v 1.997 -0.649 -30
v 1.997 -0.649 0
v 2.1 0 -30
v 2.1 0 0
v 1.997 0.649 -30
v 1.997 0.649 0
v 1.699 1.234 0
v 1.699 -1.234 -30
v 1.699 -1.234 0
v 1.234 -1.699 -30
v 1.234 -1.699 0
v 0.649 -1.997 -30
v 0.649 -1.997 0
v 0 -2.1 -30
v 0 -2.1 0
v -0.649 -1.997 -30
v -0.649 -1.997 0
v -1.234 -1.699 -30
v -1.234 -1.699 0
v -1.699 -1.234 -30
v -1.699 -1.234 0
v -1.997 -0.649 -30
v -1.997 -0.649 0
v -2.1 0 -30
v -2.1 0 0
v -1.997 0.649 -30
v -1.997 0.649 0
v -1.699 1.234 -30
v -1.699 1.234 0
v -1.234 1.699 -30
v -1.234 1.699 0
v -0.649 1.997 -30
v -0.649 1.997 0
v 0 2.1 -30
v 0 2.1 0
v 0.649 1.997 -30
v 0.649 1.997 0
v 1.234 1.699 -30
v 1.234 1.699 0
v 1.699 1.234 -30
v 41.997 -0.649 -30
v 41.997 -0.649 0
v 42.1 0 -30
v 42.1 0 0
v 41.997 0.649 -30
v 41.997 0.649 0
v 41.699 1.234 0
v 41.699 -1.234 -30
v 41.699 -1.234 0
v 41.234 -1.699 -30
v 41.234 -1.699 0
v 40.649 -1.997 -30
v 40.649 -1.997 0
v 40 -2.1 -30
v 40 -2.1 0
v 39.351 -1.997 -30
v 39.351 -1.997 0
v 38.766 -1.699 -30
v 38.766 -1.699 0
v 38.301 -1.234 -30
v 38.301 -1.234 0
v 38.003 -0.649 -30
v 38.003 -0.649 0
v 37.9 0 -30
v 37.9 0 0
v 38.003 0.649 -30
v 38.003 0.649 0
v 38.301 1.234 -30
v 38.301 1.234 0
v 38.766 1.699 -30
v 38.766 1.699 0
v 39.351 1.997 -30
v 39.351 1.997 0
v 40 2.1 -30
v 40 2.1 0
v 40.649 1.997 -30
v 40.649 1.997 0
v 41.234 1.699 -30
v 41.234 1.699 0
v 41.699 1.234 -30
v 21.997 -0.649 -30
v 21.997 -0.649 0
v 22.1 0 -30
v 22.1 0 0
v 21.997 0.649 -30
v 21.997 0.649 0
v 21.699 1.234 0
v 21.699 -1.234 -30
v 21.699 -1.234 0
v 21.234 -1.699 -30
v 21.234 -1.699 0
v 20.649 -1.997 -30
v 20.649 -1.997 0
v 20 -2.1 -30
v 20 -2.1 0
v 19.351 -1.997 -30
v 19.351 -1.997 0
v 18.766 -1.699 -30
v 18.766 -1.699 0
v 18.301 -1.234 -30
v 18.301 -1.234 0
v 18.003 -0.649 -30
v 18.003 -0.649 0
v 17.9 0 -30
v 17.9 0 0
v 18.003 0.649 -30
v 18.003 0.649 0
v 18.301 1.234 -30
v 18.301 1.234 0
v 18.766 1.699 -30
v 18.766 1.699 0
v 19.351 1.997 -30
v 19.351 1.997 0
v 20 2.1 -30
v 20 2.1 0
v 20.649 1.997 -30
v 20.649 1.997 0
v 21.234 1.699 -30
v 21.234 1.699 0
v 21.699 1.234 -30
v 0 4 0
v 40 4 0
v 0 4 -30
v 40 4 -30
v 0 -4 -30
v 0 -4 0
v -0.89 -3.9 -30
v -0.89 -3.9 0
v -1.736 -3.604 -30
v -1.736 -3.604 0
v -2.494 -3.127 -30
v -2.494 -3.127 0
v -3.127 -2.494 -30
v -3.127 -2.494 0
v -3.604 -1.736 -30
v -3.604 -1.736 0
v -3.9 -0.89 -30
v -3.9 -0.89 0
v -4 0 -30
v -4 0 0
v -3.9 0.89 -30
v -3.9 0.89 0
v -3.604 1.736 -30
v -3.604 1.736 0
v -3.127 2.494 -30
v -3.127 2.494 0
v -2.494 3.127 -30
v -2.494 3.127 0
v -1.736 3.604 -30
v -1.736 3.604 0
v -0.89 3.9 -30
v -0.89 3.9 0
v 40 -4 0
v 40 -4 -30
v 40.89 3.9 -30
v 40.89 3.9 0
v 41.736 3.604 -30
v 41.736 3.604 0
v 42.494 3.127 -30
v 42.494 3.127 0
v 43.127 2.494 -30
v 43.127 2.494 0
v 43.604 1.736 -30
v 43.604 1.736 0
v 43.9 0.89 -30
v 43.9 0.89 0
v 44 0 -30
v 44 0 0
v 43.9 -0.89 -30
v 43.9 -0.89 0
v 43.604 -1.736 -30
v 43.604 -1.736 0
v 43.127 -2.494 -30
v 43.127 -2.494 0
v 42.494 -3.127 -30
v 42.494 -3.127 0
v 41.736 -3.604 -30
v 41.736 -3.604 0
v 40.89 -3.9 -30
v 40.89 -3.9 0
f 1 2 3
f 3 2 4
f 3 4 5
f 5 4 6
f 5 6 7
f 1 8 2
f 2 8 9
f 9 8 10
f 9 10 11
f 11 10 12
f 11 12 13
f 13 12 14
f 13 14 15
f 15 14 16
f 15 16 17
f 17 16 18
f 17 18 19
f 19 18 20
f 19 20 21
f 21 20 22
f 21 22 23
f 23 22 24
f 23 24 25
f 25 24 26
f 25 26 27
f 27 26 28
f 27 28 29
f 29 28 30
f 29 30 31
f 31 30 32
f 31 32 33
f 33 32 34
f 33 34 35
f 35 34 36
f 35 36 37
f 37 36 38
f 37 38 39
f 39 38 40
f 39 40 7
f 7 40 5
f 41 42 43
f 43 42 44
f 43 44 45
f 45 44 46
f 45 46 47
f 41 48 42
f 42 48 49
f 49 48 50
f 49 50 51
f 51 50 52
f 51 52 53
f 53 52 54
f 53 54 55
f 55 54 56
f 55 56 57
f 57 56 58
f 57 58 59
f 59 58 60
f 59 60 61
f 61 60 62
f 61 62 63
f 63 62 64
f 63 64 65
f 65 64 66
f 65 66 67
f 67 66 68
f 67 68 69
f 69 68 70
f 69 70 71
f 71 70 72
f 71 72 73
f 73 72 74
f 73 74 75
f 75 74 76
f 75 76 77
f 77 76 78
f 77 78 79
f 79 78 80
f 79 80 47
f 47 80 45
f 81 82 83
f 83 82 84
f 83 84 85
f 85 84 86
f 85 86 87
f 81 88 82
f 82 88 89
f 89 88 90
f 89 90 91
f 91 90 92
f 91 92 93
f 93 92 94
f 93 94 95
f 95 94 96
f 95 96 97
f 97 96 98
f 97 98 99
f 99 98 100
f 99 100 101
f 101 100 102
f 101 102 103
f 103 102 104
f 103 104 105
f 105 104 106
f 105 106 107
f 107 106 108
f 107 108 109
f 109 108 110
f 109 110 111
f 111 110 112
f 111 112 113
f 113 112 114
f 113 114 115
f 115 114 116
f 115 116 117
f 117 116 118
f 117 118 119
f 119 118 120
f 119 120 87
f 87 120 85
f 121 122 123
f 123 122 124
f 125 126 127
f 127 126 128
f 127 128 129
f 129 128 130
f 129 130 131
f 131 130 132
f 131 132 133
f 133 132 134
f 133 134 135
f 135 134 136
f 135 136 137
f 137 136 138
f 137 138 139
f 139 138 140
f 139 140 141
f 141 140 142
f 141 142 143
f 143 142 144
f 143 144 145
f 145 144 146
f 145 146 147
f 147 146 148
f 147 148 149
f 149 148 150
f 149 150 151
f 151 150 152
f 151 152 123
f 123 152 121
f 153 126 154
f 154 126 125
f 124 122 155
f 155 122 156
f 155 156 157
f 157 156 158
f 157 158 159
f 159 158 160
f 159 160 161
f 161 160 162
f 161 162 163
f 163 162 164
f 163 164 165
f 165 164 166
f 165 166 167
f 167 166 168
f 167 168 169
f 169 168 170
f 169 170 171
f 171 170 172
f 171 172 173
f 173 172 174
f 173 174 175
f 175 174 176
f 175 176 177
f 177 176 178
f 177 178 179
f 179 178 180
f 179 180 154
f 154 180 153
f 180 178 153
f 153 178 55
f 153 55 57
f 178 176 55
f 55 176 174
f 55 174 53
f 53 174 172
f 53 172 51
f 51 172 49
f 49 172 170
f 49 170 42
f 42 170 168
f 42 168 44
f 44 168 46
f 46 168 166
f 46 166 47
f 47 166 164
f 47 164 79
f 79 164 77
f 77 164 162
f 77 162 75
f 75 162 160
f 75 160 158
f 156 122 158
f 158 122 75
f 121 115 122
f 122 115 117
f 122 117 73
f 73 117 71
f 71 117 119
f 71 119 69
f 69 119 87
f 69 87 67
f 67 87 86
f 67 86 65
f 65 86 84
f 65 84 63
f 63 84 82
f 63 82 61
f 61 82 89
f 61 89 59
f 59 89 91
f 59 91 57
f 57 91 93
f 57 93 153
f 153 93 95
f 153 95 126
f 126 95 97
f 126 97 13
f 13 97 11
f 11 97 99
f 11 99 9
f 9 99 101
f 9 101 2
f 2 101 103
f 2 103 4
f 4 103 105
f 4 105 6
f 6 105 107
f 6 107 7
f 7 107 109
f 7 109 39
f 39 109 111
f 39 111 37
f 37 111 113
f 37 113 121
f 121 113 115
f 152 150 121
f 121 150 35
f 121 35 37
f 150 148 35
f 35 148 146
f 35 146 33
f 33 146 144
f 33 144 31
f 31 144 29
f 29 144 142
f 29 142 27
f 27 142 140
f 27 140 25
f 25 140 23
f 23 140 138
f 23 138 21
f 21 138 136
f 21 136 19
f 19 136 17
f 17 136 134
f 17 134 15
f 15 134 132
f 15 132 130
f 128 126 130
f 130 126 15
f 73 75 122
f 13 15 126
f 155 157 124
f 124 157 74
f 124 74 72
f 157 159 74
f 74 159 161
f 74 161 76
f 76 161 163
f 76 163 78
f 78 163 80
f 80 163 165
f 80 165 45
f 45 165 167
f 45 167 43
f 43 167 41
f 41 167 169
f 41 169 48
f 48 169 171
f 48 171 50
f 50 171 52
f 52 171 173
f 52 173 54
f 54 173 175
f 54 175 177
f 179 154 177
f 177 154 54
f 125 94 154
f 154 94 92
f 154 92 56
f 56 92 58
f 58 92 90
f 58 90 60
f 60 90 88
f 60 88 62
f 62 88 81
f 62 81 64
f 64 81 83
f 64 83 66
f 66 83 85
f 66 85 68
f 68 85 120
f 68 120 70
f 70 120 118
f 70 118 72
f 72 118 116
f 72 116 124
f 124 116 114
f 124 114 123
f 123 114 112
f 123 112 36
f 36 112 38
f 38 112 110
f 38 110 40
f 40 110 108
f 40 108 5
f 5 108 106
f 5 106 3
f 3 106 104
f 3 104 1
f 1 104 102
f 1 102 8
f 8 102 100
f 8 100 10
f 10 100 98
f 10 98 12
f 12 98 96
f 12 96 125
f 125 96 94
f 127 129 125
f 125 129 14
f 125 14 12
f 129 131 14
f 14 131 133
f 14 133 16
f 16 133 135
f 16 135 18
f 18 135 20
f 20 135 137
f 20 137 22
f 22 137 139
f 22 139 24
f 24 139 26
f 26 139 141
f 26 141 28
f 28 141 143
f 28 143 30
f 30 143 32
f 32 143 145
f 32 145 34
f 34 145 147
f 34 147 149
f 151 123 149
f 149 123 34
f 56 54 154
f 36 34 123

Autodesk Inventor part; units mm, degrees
ref_plane "YZ Plane" through (0, 0, 0) normal (1, 0, 0) x (0, 1, 0)
ref_plane "XZ Plane" through (0, 0, 0) normal (0, 1, 0) x (-1, 0, 0)
ref_plane "XY Plane" through (0, 0, 0) normal (0, 0, 1) x (1, 0, 0)
sketch "Sketch1" plane through (0, 0, 0) normal (0, 0, 1) x (1, 0, 0)
  circle A0 centre (0, 0) radius 2.1
  circle A1 centre (20, 0) radius 2.1
  circle A2 centre (40, 0) radius 2.1
  line L0 (0, 0) -> (40, 0) construction
  line L1 (0, 0) -> (40, 0) construction
  line L2 (0, -4) -> (40, -4)
  line L3 (40, 4) -> (0, 4)
  arc A3 (0, 4) -> (0, -4) centre (0, 0) ccw
  arc A4 (40, -4) -> (40, 4) centre (40, 0) ccw
  dimension "d0" = 4.2
  dimension "d1" = 4.2
  dimension "d2" = 4.2
  dimension "d3" = 20
  dimension "d4" = 20
  dimension "d5" = 0
  dimension "d6" = 8
extrude "Extrusion1" add sketch "Sketch1" against normal blind 30
properties part number "battery_top_secure"
